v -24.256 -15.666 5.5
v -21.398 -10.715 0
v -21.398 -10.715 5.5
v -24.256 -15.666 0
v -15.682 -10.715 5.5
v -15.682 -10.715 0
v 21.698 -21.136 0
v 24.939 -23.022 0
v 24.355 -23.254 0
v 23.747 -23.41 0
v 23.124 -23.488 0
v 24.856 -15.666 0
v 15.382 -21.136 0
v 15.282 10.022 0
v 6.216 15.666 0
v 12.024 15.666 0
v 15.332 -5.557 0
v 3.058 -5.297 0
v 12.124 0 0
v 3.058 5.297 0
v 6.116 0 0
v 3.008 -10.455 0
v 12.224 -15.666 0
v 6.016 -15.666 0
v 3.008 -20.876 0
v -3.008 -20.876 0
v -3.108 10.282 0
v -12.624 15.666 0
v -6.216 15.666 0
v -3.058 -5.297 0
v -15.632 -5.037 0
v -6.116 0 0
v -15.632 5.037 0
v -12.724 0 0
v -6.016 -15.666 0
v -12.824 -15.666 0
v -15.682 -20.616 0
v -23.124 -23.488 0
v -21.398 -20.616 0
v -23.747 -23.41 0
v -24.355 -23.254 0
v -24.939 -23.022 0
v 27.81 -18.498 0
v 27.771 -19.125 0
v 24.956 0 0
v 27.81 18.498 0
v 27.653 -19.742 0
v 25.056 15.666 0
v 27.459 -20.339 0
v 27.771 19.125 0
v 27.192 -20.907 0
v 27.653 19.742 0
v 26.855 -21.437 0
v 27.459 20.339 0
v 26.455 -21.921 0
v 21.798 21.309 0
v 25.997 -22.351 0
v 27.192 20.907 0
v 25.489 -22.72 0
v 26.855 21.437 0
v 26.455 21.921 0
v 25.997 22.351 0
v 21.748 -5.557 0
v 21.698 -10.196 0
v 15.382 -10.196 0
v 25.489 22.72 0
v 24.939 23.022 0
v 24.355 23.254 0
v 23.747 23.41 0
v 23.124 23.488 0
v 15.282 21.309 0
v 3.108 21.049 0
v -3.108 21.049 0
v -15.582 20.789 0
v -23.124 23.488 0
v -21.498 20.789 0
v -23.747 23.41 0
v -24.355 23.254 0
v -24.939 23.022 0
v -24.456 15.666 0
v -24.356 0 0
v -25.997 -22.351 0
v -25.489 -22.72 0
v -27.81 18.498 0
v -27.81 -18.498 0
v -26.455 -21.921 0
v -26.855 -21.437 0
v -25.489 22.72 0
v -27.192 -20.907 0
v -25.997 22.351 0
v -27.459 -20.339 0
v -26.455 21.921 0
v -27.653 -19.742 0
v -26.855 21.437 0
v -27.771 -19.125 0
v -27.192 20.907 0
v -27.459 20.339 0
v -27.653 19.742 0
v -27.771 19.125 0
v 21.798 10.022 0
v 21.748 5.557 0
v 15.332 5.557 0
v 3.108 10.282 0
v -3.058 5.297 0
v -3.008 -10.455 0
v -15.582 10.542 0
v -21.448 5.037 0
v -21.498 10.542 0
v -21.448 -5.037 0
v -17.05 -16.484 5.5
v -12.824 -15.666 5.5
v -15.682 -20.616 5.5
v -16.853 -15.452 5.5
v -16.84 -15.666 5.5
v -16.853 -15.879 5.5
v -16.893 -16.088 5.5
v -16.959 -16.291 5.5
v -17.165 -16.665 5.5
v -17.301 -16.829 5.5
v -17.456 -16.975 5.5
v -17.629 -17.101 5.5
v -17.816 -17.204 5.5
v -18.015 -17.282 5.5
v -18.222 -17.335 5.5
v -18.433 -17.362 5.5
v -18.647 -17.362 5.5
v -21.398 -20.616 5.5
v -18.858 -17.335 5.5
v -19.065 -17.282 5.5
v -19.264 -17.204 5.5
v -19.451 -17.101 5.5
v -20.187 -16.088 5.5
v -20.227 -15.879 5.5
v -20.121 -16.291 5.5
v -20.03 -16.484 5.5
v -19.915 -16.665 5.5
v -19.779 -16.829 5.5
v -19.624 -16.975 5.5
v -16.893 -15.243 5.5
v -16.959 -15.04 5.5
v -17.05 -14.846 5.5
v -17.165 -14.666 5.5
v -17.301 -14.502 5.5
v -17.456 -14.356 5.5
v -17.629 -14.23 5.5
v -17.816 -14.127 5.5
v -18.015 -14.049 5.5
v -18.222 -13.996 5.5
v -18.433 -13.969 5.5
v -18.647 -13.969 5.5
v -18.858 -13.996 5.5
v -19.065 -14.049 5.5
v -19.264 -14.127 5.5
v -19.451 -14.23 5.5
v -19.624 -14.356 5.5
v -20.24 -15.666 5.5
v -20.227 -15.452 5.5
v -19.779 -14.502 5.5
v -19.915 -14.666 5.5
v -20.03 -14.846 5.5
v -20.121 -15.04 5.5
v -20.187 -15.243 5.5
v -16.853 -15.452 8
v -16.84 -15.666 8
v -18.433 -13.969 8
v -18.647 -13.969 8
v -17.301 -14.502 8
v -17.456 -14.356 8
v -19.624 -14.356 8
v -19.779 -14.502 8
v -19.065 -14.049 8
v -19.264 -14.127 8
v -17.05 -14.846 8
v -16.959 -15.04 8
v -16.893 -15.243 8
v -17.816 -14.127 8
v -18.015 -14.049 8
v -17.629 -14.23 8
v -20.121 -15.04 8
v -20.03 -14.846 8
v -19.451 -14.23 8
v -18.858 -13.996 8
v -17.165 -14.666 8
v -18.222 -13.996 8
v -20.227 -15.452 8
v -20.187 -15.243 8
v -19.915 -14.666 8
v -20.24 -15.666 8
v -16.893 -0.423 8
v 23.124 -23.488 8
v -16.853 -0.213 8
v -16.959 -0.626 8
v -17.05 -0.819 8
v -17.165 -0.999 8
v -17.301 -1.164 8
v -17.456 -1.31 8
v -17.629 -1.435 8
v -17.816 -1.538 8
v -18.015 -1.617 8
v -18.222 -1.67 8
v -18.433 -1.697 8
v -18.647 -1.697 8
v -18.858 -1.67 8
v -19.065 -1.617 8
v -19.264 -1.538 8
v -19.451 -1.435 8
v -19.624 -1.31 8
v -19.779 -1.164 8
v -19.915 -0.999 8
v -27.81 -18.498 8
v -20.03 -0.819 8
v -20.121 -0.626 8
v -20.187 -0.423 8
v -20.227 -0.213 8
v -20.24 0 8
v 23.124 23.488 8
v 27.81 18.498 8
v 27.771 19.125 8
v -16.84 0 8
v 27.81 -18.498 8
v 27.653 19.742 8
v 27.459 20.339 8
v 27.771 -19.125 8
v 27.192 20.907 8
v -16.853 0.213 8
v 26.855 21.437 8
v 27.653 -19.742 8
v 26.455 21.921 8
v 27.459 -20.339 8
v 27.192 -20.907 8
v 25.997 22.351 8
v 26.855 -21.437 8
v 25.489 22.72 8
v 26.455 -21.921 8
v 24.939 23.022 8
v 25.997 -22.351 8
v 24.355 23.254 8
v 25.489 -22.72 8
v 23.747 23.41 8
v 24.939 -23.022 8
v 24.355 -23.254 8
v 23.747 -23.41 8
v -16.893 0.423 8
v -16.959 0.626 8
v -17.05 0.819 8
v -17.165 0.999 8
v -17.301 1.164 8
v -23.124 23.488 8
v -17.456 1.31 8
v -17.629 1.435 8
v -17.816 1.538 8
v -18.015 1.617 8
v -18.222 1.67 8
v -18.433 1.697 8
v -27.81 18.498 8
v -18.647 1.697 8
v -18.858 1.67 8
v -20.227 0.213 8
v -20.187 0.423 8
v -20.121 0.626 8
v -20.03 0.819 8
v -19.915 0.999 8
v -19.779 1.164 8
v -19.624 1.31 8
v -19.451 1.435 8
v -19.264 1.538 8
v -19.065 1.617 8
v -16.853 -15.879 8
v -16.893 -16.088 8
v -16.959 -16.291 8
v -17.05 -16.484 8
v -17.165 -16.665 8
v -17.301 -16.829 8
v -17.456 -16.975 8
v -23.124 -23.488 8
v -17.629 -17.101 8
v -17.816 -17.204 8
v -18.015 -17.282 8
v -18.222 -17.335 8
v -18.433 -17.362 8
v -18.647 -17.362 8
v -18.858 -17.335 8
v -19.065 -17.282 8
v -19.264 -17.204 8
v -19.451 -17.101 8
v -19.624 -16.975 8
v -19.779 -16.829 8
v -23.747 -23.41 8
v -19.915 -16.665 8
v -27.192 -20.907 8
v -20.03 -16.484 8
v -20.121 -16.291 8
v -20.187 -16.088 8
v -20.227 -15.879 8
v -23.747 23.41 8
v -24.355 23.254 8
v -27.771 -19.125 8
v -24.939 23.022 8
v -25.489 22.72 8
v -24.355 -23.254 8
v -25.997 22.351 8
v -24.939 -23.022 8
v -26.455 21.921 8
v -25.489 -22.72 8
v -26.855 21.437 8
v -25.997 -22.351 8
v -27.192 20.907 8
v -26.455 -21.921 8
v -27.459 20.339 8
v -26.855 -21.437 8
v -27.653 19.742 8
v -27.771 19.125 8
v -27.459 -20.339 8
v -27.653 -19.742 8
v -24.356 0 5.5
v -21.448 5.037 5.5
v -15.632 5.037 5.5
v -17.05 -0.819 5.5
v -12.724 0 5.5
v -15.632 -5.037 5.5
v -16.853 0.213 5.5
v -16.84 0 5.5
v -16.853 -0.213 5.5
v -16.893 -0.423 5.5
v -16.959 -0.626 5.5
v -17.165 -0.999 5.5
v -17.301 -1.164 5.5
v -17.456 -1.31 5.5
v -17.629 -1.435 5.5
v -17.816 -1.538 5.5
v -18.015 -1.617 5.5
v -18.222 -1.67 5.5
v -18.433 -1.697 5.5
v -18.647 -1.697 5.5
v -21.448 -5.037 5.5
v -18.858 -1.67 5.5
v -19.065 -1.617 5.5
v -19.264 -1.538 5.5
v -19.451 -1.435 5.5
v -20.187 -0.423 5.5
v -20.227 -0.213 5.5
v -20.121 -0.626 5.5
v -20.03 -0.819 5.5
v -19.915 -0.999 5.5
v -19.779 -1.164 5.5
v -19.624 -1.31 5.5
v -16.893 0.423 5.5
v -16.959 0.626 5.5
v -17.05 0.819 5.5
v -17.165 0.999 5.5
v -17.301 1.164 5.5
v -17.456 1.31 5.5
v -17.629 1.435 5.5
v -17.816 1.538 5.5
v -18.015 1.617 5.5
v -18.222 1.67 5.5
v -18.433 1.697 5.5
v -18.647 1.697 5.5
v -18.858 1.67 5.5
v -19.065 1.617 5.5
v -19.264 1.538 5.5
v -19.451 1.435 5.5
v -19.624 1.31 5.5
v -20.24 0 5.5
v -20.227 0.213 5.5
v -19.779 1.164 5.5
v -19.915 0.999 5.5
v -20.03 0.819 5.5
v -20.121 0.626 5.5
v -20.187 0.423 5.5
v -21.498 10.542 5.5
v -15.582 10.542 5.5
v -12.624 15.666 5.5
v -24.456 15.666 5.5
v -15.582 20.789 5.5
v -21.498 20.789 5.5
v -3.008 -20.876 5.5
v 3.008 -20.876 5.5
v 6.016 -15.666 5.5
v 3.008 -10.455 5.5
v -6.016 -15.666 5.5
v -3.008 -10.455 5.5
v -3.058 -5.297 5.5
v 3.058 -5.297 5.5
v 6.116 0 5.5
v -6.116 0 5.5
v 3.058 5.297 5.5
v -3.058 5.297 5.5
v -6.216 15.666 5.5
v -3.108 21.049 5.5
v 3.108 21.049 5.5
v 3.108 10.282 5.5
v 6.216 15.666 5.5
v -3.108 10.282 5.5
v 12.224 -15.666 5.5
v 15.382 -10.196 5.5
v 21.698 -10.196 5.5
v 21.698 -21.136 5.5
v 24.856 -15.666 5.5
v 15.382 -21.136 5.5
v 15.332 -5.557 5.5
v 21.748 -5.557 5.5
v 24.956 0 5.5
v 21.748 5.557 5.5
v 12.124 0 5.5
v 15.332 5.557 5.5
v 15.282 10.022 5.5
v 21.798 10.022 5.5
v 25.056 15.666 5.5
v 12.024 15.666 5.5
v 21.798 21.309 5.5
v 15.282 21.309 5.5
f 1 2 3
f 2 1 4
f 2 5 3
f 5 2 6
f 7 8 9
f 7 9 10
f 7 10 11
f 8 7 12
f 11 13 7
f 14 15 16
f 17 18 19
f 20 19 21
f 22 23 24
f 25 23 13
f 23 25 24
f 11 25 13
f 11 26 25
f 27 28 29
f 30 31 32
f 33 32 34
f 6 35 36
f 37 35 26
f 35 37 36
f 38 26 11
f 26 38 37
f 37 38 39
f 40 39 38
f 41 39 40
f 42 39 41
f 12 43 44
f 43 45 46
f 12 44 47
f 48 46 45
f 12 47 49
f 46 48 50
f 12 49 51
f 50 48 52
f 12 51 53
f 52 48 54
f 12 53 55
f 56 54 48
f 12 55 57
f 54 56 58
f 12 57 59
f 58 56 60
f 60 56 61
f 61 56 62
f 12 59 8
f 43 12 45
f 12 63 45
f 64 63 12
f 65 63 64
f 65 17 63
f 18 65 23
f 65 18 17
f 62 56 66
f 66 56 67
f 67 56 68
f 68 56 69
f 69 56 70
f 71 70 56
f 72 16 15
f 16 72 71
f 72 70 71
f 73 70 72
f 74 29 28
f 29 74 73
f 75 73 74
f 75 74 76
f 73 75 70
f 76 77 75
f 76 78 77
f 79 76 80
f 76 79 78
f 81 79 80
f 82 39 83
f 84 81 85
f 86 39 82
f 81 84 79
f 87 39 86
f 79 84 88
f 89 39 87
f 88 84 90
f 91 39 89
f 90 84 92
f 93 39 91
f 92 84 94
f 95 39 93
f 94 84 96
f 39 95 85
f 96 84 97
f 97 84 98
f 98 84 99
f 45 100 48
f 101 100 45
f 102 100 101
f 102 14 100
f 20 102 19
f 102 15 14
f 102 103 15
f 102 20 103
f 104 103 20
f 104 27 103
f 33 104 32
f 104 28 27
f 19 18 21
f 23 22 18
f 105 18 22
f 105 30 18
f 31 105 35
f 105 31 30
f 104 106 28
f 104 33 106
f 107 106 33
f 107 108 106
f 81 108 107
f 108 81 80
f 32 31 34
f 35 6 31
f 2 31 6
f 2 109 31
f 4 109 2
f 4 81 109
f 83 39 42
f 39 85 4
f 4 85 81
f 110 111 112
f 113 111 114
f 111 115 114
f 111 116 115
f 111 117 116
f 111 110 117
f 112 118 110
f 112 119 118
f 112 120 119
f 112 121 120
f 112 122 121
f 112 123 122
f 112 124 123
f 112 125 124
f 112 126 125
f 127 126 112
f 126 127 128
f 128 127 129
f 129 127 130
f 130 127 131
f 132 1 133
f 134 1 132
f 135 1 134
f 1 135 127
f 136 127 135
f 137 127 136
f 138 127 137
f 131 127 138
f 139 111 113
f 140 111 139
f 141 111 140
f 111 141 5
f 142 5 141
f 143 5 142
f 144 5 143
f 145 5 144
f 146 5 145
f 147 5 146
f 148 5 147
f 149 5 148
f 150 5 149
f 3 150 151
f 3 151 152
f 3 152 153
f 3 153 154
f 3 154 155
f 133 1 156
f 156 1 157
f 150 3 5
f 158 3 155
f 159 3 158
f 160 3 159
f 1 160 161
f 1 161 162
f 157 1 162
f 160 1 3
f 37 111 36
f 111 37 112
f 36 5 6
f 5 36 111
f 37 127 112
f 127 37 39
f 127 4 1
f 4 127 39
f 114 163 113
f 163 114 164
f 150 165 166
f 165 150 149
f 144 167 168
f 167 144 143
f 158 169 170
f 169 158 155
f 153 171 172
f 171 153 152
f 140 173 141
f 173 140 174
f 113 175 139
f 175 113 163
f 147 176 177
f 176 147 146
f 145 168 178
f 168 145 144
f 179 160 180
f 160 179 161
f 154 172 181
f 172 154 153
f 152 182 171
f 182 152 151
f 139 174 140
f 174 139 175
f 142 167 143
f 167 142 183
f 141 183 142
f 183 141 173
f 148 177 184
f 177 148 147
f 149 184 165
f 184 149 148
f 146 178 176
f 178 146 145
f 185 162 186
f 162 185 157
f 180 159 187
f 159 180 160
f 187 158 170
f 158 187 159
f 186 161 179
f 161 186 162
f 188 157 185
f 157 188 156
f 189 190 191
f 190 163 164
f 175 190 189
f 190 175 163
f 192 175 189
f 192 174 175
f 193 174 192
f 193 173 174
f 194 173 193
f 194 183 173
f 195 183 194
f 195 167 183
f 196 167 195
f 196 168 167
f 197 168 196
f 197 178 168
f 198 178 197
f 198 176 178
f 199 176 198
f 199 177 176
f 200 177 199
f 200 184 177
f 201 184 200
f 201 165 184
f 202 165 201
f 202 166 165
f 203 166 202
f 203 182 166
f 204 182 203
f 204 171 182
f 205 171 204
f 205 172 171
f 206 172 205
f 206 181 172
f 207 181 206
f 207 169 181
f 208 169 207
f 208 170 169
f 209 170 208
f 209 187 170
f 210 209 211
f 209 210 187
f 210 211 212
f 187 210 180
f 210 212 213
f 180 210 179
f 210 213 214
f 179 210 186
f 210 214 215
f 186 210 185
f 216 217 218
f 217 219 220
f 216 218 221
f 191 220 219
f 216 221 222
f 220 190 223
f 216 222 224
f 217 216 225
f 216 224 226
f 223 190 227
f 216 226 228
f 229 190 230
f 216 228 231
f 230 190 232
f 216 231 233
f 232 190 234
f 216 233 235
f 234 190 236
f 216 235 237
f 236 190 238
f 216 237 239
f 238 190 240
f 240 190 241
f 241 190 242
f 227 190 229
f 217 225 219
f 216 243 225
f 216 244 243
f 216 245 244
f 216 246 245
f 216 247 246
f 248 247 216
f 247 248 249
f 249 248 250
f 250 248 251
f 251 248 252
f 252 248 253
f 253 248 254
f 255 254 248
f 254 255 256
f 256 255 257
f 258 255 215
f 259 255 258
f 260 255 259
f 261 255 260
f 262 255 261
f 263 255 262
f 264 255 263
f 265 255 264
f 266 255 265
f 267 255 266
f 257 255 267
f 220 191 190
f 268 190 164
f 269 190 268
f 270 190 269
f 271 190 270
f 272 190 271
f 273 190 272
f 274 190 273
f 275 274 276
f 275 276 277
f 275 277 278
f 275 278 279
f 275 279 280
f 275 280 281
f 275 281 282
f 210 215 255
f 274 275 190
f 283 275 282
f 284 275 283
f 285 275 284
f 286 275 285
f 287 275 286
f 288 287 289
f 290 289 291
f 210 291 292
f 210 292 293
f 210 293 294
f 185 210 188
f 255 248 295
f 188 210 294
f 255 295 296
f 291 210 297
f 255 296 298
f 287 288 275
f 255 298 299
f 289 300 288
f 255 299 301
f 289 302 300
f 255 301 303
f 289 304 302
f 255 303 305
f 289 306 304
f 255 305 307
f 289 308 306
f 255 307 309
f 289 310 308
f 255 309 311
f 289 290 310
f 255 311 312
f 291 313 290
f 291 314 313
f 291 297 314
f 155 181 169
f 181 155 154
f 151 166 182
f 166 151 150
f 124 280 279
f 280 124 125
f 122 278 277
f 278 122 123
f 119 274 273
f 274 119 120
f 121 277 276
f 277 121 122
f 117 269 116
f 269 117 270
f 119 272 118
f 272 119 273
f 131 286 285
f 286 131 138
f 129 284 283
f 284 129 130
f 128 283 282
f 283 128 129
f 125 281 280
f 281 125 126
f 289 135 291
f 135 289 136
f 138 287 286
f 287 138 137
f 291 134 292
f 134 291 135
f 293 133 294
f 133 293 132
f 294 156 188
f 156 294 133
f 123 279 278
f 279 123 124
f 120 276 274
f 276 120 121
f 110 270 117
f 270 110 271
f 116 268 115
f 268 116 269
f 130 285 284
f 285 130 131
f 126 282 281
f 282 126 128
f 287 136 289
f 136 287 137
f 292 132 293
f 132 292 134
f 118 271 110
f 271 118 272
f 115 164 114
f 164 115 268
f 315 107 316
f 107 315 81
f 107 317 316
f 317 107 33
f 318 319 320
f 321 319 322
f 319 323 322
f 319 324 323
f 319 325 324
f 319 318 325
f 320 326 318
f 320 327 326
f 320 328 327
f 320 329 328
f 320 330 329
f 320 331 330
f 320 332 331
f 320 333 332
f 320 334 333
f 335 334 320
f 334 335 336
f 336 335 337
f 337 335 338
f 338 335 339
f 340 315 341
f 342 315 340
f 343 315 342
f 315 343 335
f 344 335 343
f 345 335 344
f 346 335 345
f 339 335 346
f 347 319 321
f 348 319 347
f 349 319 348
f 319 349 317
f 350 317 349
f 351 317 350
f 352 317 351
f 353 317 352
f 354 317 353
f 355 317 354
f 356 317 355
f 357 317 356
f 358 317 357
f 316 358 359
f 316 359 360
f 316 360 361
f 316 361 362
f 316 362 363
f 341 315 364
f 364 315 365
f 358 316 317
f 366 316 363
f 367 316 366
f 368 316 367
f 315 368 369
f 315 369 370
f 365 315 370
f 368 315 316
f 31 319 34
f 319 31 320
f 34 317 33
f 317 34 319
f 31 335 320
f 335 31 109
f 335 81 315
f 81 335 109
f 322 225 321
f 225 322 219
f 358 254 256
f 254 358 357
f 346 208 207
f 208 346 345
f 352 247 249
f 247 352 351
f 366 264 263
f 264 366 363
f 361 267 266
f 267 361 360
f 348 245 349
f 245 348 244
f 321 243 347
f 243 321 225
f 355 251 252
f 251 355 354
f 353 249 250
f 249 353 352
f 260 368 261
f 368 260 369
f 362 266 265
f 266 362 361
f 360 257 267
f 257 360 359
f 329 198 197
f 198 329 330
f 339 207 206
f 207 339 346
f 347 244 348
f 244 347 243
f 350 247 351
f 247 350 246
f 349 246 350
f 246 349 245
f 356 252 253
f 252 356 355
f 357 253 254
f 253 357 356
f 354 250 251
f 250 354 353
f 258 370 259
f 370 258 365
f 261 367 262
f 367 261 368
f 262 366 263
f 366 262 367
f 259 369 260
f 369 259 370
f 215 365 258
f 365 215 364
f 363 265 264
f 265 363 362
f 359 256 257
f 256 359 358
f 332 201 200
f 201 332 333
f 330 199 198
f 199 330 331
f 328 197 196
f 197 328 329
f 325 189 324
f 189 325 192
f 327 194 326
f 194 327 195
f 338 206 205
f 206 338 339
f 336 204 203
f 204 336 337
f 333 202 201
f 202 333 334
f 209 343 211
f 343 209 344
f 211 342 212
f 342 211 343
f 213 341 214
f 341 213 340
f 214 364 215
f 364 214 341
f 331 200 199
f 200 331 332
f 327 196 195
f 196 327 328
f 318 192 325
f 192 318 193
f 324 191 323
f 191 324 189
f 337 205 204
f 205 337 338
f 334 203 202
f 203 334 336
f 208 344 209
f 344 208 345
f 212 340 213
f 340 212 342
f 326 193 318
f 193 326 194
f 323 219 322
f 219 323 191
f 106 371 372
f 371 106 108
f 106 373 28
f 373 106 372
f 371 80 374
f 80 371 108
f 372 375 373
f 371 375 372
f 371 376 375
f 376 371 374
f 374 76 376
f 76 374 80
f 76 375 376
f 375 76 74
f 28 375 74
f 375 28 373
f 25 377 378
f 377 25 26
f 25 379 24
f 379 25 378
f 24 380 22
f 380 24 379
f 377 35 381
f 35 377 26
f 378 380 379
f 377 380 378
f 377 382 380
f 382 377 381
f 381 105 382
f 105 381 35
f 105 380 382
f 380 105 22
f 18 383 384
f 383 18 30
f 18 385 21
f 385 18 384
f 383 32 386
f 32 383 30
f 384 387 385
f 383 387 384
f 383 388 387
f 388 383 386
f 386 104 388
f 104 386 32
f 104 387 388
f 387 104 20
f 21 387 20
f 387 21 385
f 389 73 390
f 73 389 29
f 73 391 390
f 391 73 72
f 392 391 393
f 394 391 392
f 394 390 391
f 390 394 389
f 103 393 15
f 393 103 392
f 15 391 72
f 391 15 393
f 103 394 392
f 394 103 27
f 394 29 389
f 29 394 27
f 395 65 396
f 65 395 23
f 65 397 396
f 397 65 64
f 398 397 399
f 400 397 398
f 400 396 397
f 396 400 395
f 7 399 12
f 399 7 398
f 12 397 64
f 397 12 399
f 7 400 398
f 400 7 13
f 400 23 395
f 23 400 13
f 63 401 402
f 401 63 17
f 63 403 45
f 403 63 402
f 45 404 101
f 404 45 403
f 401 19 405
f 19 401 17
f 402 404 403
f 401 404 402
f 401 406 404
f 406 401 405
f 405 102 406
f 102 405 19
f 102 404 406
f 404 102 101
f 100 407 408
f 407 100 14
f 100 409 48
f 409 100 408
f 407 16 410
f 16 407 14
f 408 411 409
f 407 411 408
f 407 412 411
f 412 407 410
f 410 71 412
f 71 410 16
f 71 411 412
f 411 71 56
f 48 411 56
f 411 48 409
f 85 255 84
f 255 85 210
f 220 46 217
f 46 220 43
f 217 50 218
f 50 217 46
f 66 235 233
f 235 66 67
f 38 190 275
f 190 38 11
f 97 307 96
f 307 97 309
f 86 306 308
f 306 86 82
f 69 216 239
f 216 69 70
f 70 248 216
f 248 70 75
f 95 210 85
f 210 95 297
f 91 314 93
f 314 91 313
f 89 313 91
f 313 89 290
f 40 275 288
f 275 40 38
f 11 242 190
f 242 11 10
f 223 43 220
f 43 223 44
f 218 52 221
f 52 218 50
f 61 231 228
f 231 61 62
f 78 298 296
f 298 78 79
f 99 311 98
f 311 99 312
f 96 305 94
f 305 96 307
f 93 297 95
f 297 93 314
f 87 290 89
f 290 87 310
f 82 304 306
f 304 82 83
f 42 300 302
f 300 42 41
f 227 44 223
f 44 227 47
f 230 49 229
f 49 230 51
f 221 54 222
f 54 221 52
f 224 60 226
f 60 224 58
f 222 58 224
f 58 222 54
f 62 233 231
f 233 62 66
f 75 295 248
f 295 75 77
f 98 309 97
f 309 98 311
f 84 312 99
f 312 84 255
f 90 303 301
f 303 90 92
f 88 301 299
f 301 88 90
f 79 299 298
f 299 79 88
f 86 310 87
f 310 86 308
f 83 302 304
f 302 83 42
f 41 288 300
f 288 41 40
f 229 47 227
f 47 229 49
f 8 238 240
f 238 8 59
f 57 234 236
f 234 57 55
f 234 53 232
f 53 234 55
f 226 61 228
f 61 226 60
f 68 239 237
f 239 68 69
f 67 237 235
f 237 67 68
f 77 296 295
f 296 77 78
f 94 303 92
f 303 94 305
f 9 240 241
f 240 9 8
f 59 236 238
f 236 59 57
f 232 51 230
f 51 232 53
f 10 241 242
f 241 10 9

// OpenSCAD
$fn = 50;


difference() {
	union() {
		translate(v = [0, 0, 0]) {
			rotate(a = [0, 0, 0]) {
				hull() {
					translate(v = [-22.8100000000, 18.4982668977, 0]) {
						rotate(a = [0, 0, 0]) {
							translate(v = [0, 0, 0]) {
								rotate(a = [0, 0, 0]) {
									cylinder(h = 8, r = 5);
								}
							}
						}
					}
					translate(v = [22.8100000000, 18.4982668977, 0]) {
						rotate(a = [0, 0, 0]) {
							translate(v = [0, 0, 0]) {
								rotate(a = [0, 0, 0]) {
									cylinder(h = 8, r = 5);
								}
							}
						}
					}
					translate(v = [-22.8100000000, -18.4982668977, 0]) {
						rotate(a = [0, 0, 0]) {
							translate(v = [0, 0, 0]) {
								rotate(a = [0, 0, 0]) {
									cylinder(h = 8, r = 5);
								}
							}
						}
					}
					translate(v = [22.8100000000, -18.4982668977, 0]) {
						rotate(a = [0, 0, 0]) {
							translate(v = [0, 0, 0]) {
								rotate(a = [0, 0, 0]) {
									cylinder(h = 8, r = 5);
								}
							}
						}
					}
				}
			}
		}
	}
	union() {
		translate(v = [-18.5400000000, -15.6655112652, 0]) {
			rotate(a = [0, 0, 0]) {
				translate(v = [0, 0, 0]) {
					rotate(a = [0, 0, 0]) {
						linear_extrude(height = 5.5000000000) {
							polygon(points = [[5.7162000000, 0.0000000000], [2.8581000000, 4.9503744131], [-2.8581000000, 4.9503744131], [-5.7162000000, 0.0000000000], [-2.8581000000, -4.9503744131], [2.8581000000, -4.9503744131]]);
						}
					}
				}
			}
		}
		#translate(v = [-18.5400000000, -15.6655112652, 0]) {
			rotate(a = [0, 0, 0]) {
				cylinder(h = 8, r = 1.7000000000);
			}
		}
		translate(v = [-18.5400000000, 0.0000000000, 0]) {
			rotate(a = [0, 0, 0]) {
				translate(v = [0, 0, 0]) {
					rotate(a = [0, 0, 0]) {
						linear_extrude(height = 5.5000000000) {
							polygon(points = [[5.8162000000, 0.0000000000], [2.9081000000, 5.0369769535], [-2.9081000000, 5.0369769535], [-5.8162000000, 0.0000000000], [-2.9081000000, -5.0369769535], [2.9081000000, -5.0369769535]]);
						}
					}
				}
			}
		}
		#translate(v = [-18.5400000000, 0.0000000000, 0]) {
			rotate(a = [0, 0, 0]) {
				cylinder(h = 8, r = 1.7000000000);
			}
		}
		translate(v = [-18.5400000000, 15.6655112652, 0]) {
			rotate(a = [0, 0, 0]) {
				translate(v = [0, 0, 0]) {
					rotate(a = [0, 0, 0]) {
						linear_extrude(height = 5.5000000000) {
							polygon(points = [[5.9162000000, 0.0000000000], [2.9581000000, 5.1235794939], [-2.9581000000, 5.1235794939], [-5.9162000000, 0.0000000000], [-2.9581000000, -5.1235794939], [2.9581000000, -5.1235794939]]);
						}
					}
				}
			}
		}
		translate(v = [0.0000000000, -15.6655112652, 0]) {
			rotate(a = [0, 0, 0]) {
				translate(v = [0, 0, 0]) {
					rotate(a = [0, 0, 0]) {
						linear_extrude(height = 5.5000000000) {
							polygon(points = [[6.0162000000, 0.0000000000], [3.0081000000, 5.2101820342], [-3.0081000000, 5.2101820342], [-6.0162000000, 0.0000000000], [-3.0081000000, -5.2101820342], [3.0081000000, -5.2101820342]]);
						}
					}
				}
			}
		}
		translate(v = [0.0000000000, 0.0000000000, 0]) {
			rotate(a = [0, 0, 0]) {
				translate(v = [0, 0, 0]) {
					rotate(a = [0, 0, 0]) {
						linear_extrude(height = 5.5000000000) {
							polygon(points = [[6.1162000000, 0.0000000000], [3.0581000000, 5.2967845746], [-3.0581000000, 5.2967845746], [-6.1162000000, 0.0000000000], [-3.0581000000, -5.2967845746], [3.0581000000, -5.2967845746]]);
						}
					}
				}
			}
		}
		translate(v = [0.0000000000, 15.6655112652, 0]) {
			rotate(a = [0, 0, 0]) {
				translate(v = [0, 0, 0]) {
					rotate(a = [0, 0, 0]) {
						linear_extrude(height = 5.5000000000) {
							polygon(points = [[6.2162000000, 0.0000000000], [3.1081000000, 5.3833871150], [-3.1081000000, 5.3833871150], [-6.2162000000, 0.0000000000], [-3.1081000000, -5.3833871150], [3.1081000000, -5.3833871150]]);
						}
					}
				}
			}
		}
		translate(v = [18.5400000000, -15.6655112652, 0]) {
			rotate(a = [0, 0, 0]) {
				translate(v = [0, 0, 0]) {
					rotate(a = [0, 0, 0]) {
						linear_extrude(height = 5.5000000000) {
							polygon(points = [[6.3162000000, 0.0000000000], [3.1581000000, 5.4699896554], [-3.1581000000, 5.4699896554], [-6.3162000000, 0.0000000000], [-3.1581000000, -5.4699896554], [3.1581000000, -5.4699896554]]);
						}
					}
				}
			}
		}
		translate(v = [18.5400000000, 0.0000000000, 0]) {
			rotate(a = [0, 0, 0]) {
				translate(v = [0, 0, 0]) {
					rotate(a = [0, 0, 0]) {
						linear_extrude(height = 5.5000000000) {
							polygon(points = [[6.4162000000, 0.0000000000], [3.2081000000, 5.5565921958], [-3.2081000000, 5.5565921958], [-6.4162000000, 0.0000000000], [-3.2081000000, -5.5565921958], [3.2081000000, -5.5565921958]]);
						}
					}
				}
			}
		}
		translate(v = [18.5400000000, 15.6655112652, 0]) {
			rotate(a = [0, 0, 0]) {
				translate(v = [0, 0, 0]) {
					rotate(a = [0, 0, 0]) {
						linear_extrude(height = 5.5000000000) {
							polygon(points = [[6.5162000000, 0.0000000000], [3.2581000000, 5.6431947361], [-3.2581000000, 5.6431947361], [-6.5162000000, 0.0000000000], [-3.2581000000, -5.6431947361], [3.2581000000, -5.6431947361]]);
						}
					}
				}
			}
		}
	}
}
